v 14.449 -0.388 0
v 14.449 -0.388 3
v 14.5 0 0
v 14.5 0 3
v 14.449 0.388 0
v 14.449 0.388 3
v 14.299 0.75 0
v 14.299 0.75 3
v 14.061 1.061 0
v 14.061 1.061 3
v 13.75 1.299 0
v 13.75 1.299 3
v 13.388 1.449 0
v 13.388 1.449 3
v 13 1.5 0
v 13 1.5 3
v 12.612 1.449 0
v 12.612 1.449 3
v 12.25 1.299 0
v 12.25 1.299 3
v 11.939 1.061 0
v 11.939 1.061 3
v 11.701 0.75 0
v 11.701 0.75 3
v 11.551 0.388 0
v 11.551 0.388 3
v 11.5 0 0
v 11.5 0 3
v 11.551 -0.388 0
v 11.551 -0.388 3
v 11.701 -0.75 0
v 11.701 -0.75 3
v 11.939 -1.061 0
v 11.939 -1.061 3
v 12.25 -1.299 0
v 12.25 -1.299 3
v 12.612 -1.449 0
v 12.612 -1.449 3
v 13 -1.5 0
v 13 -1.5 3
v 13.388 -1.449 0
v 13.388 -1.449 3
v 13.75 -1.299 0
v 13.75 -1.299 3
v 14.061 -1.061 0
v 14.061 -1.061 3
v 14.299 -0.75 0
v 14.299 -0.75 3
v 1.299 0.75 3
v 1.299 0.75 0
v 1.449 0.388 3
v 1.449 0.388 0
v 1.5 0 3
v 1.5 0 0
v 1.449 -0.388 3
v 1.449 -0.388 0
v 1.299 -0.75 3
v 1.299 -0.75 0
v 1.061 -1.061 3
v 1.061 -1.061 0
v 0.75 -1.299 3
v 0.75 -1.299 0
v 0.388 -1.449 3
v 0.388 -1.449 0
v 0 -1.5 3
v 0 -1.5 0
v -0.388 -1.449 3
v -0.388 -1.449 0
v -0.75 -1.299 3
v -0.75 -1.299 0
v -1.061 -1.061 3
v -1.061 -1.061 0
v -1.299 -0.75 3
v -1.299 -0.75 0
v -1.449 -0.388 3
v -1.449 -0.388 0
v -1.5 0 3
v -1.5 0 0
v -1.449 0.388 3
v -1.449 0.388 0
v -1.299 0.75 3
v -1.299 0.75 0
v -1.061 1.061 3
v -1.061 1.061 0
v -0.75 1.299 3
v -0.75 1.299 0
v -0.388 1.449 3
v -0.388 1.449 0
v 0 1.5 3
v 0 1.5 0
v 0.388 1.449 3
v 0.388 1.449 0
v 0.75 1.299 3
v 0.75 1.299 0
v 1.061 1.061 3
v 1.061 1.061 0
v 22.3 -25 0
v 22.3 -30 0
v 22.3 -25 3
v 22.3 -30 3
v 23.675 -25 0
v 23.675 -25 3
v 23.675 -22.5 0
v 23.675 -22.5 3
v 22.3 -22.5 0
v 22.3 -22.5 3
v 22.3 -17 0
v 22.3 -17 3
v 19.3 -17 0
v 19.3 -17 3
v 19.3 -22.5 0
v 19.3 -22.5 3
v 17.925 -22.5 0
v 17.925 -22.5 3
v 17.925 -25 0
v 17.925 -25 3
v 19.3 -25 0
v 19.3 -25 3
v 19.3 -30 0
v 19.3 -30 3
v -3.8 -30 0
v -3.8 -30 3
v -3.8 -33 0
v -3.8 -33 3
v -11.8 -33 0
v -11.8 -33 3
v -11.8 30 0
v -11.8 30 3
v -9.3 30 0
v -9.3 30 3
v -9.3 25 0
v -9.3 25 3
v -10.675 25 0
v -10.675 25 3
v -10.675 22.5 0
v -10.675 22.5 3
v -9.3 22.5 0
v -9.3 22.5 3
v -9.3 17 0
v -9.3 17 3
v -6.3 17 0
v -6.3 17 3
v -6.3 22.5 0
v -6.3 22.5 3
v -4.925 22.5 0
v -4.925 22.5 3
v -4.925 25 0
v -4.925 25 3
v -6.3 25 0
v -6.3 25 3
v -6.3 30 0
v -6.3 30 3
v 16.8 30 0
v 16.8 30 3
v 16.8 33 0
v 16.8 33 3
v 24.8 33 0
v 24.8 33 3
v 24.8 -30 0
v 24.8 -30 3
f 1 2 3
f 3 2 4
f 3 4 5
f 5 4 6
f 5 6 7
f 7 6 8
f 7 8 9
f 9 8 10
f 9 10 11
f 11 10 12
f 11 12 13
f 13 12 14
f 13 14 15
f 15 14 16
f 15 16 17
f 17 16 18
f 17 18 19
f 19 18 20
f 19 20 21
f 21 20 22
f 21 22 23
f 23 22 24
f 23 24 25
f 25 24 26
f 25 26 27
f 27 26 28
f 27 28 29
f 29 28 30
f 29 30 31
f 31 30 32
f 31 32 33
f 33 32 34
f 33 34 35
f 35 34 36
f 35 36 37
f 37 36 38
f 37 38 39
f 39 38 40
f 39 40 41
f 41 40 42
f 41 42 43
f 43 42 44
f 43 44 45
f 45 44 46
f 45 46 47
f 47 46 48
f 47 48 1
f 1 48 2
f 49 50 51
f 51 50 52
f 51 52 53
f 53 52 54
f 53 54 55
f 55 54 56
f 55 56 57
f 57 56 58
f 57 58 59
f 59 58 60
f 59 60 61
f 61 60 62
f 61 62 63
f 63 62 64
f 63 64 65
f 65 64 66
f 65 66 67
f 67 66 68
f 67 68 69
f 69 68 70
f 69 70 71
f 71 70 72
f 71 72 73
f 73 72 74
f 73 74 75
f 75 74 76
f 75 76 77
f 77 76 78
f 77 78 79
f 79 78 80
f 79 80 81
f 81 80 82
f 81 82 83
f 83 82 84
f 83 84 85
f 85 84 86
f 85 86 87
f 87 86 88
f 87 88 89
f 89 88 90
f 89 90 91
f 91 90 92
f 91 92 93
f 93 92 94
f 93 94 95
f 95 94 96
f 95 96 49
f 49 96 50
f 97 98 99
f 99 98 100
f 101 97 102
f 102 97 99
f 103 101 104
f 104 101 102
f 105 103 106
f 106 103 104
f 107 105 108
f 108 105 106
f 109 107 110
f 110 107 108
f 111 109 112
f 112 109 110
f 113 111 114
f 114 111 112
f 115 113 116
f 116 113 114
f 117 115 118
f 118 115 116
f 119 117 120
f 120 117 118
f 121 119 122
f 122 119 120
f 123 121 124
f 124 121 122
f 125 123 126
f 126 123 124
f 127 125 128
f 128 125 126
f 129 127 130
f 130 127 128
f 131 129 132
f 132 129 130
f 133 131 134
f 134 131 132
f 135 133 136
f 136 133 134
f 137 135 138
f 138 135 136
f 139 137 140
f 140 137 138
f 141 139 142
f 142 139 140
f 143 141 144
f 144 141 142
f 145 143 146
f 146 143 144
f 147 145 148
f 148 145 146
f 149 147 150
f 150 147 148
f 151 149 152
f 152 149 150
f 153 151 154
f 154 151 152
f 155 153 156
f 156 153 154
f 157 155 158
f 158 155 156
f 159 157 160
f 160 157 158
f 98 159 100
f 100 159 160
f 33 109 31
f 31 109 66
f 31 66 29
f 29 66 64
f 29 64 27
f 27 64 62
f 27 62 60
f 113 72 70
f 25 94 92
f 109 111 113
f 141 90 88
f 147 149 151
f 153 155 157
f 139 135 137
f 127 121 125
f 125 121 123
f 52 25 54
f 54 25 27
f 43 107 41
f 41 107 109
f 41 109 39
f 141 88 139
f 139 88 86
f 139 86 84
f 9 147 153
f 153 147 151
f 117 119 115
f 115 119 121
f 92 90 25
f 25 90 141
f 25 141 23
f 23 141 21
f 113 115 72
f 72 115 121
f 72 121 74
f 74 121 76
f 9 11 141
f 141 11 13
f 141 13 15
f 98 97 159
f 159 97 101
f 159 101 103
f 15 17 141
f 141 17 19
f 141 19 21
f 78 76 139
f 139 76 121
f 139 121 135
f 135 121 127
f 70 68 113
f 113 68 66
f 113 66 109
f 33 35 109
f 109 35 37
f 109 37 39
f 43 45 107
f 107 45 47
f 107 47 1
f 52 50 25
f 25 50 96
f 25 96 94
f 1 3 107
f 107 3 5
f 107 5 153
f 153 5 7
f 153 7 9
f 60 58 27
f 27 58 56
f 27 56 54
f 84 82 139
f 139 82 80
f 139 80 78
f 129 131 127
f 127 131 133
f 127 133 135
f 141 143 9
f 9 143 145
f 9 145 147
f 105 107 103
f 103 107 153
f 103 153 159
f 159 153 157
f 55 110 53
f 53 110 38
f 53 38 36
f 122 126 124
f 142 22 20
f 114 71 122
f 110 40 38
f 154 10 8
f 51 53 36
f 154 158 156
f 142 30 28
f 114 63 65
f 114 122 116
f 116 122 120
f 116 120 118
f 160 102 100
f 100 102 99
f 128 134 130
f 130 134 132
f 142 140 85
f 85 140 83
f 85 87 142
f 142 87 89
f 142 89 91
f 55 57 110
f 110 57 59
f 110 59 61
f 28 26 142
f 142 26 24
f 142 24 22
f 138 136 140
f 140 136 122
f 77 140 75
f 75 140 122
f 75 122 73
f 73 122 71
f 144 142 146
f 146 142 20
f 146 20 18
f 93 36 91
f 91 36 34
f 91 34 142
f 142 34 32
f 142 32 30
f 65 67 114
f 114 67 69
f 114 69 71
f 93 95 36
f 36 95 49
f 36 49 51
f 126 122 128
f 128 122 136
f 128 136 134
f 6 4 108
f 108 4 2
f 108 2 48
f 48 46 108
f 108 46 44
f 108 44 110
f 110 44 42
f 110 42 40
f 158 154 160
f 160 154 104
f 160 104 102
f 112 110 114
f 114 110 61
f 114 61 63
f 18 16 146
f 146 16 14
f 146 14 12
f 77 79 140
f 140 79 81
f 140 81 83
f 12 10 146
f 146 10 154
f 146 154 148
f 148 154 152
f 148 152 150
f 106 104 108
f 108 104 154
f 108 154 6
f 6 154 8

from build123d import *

# Parameters (mm, degrees)
ESBO_O1_R                = 1.5
RESSALTO_EXTRUS_O1_DEPTH = 3


with BuildPart() as part:
    # Esboço1 → Ressalto-extrusão1 (new body)
    with BuildSketch(Plane.XY):
        Polygon((22.3, -30), (22.3, -25), (23.675, -25), (23.675, -22.5), (22.3, -22.5), (22.3, -17), (19.3, -17), (19.3, -22.5), (17.925, -22.5), (17.925, -25), (19.3, -25), (19.3, -30), (-3.8, -30), (-3.8, -33), (-11.8, -33), (-11.8, -30), (-11.8, 8.3), (-11.8, 30), (-9.3, 30), (-9.3, 25), (-10.675, 25), (-10.675, 22.5), (-9.3, 22.5), (-9.3, 17), (-6.3, 17), (-6.3, 22.5), (-4.925, 22.5), (-4.925, 25), (-6.3, 25), (-6.3, 30), (16.8, 30), (16.8, 33), (24.8, 33), (24.8, -30), align=None)
        Circle(ESBO_O1_R, mode=Mode.SUBTRACT)
        with Locations((13, 0)):
            Circle(ESBO_O1_R, mode=Mode.SUBTRACT)
    extrude(amount=RESSALTO_EXTRUS_O1_DEPTH)


solid = part.part
